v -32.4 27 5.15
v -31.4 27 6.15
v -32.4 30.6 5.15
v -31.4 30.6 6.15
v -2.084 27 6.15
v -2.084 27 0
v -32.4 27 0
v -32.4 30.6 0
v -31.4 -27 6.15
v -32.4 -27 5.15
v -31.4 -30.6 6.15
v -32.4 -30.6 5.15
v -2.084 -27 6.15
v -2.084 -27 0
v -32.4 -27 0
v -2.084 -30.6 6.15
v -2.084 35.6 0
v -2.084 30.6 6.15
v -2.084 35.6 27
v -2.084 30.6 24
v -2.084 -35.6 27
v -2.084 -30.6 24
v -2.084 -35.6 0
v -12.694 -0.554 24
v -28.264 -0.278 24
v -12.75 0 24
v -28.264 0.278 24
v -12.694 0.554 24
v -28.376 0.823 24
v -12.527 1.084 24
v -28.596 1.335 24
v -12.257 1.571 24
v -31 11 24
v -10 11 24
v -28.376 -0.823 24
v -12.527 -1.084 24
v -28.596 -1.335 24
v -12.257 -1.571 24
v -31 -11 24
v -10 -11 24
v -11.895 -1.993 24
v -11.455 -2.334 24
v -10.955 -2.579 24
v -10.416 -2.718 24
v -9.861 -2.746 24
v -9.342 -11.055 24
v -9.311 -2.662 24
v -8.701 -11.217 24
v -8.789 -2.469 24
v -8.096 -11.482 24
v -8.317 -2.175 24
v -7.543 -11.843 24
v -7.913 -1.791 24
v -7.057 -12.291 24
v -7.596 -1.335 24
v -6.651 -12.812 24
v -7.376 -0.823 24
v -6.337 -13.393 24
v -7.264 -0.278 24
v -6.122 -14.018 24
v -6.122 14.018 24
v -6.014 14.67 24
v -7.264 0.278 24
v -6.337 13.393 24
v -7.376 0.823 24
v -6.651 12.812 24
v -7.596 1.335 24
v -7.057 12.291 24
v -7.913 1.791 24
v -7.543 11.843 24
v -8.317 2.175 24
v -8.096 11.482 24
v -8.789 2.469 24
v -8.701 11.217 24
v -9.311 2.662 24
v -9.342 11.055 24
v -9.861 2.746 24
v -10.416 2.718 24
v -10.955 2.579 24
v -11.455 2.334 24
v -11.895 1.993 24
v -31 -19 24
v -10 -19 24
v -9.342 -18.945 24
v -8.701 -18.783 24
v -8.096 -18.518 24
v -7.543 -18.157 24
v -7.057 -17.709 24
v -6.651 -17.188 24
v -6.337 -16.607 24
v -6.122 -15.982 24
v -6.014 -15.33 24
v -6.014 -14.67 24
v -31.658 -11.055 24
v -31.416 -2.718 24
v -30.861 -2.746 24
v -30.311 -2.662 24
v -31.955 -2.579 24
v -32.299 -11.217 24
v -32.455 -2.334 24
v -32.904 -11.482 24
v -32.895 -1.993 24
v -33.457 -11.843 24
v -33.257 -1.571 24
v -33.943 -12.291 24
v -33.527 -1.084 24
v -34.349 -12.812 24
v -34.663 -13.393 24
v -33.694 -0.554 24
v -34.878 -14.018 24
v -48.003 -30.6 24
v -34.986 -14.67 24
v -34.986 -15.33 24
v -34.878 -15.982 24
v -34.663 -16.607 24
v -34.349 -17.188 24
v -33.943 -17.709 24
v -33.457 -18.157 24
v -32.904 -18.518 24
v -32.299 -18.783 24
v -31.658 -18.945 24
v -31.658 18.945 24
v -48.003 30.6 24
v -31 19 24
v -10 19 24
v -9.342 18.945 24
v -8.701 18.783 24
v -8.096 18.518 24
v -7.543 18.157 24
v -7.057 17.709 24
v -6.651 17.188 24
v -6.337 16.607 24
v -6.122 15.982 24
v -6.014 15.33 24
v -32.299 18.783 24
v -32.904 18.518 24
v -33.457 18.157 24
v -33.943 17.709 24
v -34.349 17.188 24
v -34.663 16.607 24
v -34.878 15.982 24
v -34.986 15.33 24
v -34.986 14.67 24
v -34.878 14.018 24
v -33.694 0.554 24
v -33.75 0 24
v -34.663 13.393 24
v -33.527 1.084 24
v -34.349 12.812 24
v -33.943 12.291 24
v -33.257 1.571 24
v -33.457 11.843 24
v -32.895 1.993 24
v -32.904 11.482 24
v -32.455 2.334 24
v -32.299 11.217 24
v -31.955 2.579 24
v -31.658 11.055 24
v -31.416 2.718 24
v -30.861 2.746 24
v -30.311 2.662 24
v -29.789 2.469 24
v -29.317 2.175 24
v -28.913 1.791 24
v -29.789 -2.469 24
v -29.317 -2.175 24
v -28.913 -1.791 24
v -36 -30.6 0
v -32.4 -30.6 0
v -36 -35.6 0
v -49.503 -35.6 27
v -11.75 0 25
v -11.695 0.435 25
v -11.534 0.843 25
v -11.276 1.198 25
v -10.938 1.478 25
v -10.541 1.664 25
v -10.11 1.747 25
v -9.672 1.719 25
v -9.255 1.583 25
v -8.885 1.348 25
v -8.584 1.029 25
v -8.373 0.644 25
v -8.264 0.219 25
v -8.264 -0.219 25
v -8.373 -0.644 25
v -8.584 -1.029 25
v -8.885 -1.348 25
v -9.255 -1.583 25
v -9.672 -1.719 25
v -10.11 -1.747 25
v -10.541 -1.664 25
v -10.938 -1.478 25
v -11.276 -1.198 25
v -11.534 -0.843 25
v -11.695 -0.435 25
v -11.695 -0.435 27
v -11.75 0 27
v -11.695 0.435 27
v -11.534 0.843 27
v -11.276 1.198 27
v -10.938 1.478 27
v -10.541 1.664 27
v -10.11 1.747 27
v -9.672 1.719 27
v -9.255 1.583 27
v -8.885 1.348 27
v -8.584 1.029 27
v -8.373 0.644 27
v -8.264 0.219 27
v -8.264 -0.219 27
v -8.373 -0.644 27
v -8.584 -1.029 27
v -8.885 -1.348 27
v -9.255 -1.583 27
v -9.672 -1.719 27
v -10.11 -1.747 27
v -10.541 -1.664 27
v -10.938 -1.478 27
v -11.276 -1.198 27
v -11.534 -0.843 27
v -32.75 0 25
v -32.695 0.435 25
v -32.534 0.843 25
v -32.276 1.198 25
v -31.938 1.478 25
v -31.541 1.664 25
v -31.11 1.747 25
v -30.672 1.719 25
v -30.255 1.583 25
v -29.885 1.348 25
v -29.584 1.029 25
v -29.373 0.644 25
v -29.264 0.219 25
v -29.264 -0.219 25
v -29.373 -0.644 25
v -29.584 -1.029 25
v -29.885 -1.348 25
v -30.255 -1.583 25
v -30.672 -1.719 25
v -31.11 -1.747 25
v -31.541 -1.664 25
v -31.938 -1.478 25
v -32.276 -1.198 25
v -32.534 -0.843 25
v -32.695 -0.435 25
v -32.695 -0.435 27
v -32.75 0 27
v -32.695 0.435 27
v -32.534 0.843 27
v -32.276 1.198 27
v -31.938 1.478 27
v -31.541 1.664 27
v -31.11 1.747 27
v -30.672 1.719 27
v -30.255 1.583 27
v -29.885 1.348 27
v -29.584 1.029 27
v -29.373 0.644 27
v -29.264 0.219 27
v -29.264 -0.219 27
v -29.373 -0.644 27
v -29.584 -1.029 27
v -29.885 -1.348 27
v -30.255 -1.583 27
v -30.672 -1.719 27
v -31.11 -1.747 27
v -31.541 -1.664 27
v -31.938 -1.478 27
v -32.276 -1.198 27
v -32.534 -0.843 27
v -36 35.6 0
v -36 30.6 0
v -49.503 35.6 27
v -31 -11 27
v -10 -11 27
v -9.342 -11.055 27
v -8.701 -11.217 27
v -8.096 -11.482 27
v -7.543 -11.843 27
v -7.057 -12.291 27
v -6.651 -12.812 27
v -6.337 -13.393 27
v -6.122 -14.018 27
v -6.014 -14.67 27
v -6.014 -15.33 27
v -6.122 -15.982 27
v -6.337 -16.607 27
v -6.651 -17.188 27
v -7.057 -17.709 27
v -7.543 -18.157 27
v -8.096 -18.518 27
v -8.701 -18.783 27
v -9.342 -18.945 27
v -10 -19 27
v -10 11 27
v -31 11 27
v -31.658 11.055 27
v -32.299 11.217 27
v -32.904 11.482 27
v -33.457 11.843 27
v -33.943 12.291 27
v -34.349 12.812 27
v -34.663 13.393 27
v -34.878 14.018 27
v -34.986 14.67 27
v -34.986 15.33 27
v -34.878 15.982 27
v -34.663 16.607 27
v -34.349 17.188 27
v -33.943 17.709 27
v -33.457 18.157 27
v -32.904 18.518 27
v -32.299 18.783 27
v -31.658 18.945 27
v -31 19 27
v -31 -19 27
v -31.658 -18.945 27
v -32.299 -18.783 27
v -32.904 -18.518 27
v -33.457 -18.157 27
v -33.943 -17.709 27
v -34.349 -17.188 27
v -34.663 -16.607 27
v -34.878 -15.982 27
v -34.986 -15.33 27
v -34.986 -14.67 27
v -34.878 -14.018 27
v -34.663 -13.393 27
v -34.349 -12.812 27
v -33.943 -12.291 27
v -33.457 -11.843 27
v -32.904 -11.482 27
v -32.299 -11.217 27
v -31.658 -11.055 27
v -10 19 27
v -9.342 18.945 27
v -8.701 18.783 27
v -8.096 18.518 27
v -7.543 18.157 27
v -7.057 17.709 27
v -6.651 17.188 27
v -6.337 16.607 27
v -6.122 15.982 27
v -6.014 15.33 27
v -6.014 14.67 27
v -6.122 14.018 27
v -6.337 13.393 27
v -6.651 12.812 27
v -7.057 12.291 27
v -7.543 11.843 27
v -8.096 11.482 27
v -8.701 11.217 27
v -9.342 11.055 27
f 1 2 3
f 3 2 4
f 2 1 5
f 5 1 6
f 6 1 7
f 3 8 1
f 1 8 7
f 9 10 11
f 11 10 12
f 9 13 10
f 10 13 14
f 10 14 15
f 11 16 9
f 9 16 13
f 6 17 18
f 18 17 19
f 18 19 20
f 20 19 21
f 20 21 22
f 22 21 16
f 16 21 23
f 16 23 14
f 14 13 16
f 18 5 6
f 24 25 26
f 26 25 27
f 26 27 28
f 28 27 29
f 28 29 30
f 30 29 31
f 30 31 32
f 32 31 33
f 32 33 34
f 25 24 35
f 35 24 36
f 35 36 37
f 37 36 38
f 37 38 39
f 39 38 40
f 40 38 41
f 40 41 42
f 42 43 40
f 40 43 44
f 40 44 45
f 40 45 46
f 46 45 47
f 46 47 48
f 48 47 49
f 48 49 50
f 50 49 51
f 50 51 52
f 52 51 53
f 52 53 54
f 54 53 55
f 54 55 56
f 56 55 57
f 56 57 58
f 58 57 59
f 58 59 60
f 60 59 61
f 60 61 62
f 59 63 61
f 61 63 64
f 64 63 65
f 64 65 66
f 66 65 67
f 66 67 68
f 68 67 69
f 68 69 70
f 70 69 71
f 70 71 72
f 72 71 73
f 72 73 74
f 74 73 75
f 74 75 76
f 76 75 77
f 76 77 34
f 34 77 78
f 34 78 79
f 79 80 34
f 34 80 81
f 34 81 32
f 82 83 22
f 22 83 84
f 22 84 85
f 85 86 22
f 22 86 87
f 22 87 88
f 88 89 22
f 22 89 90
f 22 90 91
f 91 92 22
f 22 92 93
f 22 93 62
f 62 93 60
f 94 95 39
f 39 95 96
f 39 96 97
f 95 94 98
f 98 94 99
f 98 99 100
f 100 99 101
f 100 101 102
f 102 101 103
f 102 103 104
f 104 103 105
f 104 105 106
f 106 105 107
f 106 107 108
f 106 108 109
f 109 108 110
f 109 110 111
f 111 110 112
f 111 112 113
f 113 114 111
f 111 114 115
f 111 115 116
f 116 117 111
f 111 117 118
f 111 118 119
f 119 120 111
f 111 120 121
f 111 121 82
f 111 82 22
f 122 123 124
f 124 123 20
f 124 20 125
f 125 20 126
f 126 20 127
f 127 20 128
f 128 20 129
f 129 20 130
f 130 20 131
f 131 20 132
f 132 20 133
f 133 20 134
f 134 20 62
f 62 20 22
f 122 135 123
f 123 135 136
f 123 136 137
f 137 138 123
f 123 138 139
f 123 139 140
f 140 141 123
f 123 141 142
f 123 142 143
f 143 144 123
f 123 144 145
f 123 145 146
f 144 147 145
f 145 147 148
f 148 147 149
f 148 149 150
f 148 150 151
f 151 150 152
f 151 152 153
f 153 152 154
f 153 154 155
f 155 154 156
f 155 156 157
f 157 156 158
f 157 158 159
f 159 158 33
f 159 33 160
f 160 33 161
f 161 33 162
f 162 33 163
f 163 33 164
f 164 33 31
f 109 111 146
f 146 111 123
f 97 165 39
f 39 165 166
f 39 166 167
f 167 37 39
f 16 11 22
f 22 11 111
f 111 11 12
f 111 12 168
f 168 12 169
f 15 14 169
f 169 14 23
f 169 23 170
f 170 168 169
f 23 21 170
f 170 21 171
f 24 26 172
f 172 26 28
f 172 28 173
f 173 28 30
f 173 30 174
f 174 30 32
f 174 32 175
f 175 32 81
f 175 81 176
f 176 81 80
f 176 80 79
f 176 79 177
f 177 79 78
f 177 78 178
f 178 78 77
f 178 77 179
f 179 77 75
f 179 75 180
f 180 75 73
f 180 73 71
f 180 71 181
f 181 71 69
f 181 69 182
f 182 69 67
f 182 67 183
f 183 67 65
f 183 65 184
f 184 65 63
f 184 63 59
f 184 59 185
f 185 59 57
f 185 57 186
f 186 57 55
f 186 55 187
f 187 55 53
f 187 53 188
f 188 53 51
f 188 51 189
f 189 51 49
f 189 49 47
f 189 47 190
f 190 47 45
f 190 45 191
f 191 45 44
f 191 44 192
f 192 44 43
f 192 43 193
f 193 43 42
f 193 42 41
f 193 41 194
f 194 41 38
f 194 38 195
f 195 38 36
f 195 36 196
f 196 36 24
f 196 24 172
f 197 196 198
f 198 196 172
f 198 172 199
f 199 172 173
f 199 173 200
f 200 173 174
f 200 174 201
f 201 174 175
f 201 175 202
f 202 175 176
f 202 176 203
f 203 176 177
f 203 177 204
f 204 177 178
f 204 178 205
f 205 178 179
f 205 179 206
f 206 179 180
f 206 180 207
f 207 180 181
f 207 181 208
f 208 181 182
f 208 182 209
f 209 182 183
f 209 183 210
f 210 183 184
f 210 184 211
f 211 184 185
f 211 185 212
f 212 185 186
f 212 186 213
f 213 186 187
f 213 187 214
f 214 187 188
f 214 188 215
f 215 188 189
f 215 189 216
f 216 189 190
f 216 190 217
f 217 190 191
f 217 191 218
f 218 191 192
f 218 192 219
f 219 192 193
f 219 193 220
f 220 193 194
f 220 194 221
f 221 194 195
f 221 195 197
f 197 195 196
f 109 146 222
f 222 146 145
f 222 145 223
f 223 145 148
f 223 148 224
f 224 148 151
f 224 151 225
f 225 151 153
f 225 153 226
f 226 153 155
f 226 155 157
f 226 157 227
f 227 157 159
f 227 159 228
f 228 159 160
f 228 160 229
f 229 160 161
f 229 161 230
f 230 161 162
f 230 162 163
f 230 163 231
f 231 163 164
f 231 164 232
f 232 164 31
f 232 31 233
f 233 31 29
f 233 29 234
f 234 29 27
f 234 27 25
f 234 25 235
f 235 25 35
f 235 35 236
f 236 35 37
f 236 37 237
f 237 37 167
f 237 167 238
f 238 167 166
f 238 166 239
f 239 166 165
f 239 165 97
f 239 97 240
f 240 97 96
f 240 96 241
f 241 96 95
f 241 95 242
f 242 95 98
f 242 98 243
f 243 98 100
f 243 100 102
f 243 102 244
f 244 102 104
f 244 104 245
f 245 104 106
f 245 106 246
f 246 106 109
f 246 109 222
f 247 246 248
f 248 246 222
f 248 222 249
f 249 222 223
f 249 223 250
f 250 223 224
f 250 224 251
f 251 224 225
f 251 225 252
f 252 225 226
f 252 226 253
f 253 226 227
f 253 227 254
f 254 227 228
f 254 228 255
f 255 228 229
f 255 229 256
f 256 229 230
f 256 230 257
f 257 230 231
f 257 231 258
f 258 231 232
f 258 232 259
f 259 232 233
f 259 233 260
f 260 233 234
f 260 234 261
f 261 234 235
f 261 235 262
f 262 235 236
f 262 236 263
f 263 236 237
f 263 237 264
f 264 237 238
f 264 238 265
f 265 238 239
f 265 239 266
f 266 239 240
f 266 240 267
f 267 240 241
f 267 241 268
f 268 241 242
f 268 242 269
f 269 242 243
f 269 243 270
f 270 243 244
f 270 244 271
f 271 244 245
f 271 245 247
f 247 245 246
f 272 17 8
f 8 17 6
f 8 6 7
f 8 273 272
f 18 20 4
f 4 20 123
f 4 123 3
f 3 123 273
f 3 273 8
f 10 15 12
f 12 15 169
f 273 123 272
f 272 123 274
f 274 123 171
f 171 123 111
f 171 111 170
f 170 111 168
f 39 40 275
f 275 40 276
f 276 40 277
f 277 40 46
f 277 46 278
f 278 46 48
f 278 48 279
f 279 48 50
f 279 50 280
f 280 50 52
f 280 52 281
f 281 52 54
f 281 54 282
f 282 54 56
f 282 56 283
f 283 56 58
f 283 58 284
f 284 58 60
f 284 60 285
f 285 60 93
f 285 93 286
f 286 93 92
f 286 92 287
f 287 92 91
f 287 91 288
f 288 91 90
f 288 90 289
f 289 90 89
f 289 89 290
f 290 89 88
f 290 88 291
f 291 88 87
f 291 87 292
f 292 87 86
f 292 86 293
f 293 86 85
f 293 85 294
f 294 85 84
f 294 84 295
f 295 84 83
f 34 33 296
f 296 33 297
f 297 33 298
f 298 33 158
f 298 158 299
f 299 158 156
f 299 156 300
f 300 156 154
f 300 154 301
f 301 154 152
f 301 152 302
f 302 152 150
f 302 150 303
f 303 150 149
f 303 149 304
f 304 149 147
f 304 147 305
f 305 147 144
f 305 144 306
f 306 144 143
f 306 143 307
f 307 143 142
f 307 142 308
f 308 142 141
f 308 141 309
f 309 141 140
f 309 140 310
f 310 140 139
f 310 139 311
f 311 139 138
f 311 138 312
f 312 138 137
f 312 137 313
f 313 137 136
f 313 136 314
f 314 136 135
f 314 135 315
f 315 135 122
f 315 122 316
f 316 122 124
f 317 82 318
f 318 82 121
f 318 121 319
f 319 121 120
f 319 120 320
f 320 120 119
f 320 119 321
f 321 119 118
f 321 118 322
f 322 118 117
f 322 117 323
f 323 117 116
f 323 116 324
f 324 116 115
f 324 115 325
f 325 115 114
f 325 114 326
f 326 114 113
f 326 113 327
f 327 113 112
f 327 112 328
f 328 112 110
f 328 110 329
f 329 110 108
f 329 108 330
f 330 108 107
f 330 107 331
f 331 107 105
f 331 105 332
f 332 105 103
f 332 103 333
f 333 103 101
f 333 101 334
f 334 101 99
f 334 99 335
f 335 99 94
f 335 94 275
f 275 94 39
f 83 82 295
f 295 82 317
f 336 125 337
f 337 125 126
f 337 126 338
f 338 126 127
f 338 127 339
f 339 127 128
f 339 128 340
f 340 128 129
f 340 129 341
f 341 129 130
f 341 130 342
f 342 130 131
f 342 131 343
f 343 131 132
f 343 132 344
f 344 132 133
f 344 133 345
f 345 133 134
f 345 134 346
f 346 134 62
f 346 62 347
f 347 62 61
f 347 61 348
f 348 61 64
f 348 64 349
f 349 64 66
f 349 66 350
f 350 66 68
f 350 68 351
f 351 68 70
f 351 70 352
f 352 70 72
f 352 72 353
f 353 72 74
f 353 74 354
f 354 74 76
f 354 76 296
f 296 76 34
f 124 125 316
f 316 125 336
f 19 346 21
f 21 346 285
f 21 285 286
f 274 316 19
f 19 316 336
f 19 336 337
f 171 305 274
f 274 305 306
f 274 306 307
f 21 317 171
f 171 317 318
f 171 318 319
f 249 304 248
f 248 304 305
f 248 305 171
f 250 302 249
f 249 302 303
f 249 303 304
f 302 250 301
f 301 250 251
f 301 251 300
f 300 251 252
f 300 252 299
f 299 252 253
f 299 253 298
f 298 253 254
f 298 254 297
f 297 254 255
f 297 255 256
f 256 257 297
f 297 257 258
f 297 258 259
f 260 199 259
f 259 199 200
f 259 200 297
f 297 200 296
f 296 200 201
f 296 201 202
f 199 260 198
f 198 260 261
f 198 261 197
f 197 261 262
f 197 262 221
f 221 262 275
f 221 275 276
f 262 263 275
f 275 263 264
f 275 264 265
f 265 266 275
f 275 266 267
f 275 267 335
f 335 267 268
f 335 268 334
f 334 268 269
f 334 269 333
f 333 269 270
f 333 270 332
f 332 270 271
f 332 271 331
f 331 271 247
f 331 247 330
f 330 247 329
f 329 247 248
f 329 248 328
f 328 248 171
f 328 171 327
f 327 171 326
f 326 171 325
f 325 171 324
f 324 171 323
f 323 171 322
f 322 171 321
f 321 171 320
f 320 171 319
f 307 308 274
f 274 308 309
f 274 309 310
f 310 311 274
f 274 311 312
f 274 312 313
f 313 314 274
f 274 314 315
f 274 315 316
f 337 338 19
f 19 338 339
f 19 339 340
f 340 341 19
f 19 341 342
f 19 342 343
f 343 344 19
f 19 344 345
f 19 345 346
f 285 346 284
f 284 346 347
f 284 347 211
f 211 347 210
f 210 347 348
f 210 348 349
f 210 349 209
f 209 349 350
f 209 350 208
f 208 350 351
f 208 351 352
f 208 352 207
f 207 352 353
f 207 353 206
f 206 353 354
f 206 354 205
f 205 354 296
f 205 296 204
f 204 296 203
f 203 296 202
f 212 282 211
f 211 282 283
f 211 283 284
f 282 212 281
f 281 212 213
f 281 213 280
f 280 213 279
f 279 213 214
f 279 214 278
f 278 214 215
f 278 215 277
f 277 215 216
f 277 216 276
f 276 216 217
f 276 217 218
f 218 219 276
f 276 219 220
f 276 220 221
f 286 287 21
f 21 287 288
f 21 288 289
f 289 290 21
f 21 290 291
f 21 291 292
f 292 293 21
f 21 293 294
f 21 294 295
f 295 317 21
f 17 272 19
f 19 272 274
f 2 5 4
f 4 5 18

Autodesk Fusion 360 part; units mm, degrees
sketch "Sketch1" plane through (0, 0, 0) normal (0, 0, 1) x (1, 0, 0)
  line L0 (36, 27) -> (-36, 27)
  line L1 (-36, 27) -> (-36, -27)
  line L2 (-36, -27) -> (36, -27)
  line L3 (36, -27) -> (36, 27)
  line L4 (36, 30.6) -> (-36, 30.6)
  line L5 (-36, 35.6) -> (-36, -30.6)
  line L6 (-36, -30.6) -> (36, -30.6)
  line L7 (36, -30.6) -> (36, 30.6)
  line L8 (33, 35.6) -> (-36, 35.6)
  line L9 (41, -27.6) -> (41, 27.6)
  line L10 (33, -35.6) -> (-36, -35.6)
  line L11 (-36, -35.6) -> (-36, 30.6)
  arc A0 (41, 27.6) -> (33, 35.6) centre (33, 27.6) ccw
  arc A1 (33, -35.6) -> (41, -27.6) centre (33, -27.6) ccw
  circle A2 centre (-31, 0) radius 1.75
  line L12 (-31, 11) -> (-10, 11)
  arc A3 (-10, 11) -> (-10, 19) centre (-10, 15) ccw
  line L13 (-10, 19) -> (-31, 19)
  arc A4 (-31, 19) -> (-31, 11) centre (-31, 15) ccw
  line L14 (-31, 15) -> (-10, 15) construction
  line L15 (1.75, 0) -> (22.5, 0)
  line L16 (-31, -11) -> (-10, -11)
  line L17 (-10, -19) -> (-31, -19)
  arc A5 (-10, -19) -> (-10, -11) centre (-10, -15) ccw
  arc A6 (-31, -11) -> (-31, -19) centre (-31, -15) ccw
  circle A7 centre (-10, 0) radius 1.75
  dimension "d1" = 72
  dimension "d2" = 54
  dimension "d3" = 61.2
  dimension "d6" = 8
  dimension "d32" = 3.5
  dimension "d34" = 8
  dimension "d40" = 3.5
extrude "Extrude1" add sketch "Sketch1" along normal blind 6.15 contours L3 L4 L5 L6 L7 L8 L9 L10 L11 A0 A1 | L0 L4 L5 L7 L11 | L2 L5 L6 L7 L11
extrude "Extrude2" add sketch "Sketch1" along normal blind 24 contours L3 L4 L5 L6 L7 L8 L9 L10 L11 A0 A1
extrude "Extrude3" add sketch "Sketch1" along normal blind 27 and the other way blind -24
sketch "Sketch2" plane through (0, -35.6, 0) normal (0, -1, 0) x (1, 0, 0)
  line L0 (-36, 0) -> (33, 0)
  line L1 (33, 0) -> (33, 27)
  line L2 (-36, 27) -> (-36, 0)
  line L3 (-36, 0) -> (-49.5029, 27)
  line L4 (-36, 0) -> (-6, 0) construction
  line L5 (-36, 27) -> (-49.5029, 27)
  line L6 (33, 27) -> (-36, 27)
  line L7 (-36, 27) -> (-36, 24)
  line L8 (-36, 24) -> (-36.4845, 24)
  line L9 (-36.4845, 24) -> (-48.0026, 24)
  line L10 (-36, 0) -> (-36, 6.4)
  line L11 (-36, 6.4) -> (-36, 6)
  line L12 (-36, 6.4) -> (-39.2007, 6.4)
  line L13 (-36, 0) -> (-32.4, 0)
  line L14 (-49.5029, 27) -> (-47.5029, 27)
  line L15 (-36, 6.4) -> (-32.4, 6.4)
  line L16 (-32.4, 6.4) -> (-32.4, 0)
  dimension "d11" = 116.57
  dimension "d25" = 6.4
  dimension "d36" = 3.6
  dimension "d37" = 2
extrude "Extrude4" add sketch "Sketch2" against normal blind 5 contours L2 L3 L10 L11 L12 | L2 L3 L8 L9 L12
extrude "Extrude5" add sketch "Sketch2" along normal blind -71.2 and the other way blind 66.2 contours L2 L3 L10 L11 L12 | L2 L3 L8 L9 L12
extrude "Extrude6" add sketch "Sketch2" against normal blind 71.2 contours L2 L3 L5 L7 L8 L9 L14
extrude "Extrude7" cut sketch "Sketch2" along normal blind -8.6 and the other way blind 5 contours L0 L2 L10 L11 L13 L15 L16
extrude "Extrude8" cut sketch "Sketch2" along normal blind -66.2 and the other way blind 62.6 contours L0 L2 L10 L11 L13 L15 L16
chamfer "Chamfer2" distance 1 angle 45 2 edges at (-32.6316, 0.6328, 24) (-11.6316, 0.6328, 24)
sketch "Sketch3" plane through (0, 0, 27) normal (0, 0, 1) x (-1, 0, 0)
  arc A0 (10, 19) -> (10, 11) centre (10, 15) ccw
  line L0 (10, 19) -> (31, 19)
  arc A1 (31, 11) -> (31, 19) centre (31, 15) ccw
  line L1 (31, 11) -> (10, 11)
  circle A2 centre (31, 0) radius 1.75
  circle A3 centre (10, 0) radius 1.75
  arc A4 (31, -19) -> (31, -11) centre (31, -15) ccw
  line L2 (31, -19) -> (10, -19)
  arc A5 (10, -11) -> (10, -19) centre (10, -15) ccw
  line L3 (10, -11) -> (31, -11)
  line L4 (49.5029, 35.6) -> (-33, 35.6)
  arc A6 (-33, 35.6) -> (-41, 27.6) centre (-33, 27.6) ccw
  line L5 (-41, 27.6) -> (-41, -27.6)
  arc A7 (-41, -27.6) -> (-33, -35.6) centre (-33, -27.6) ccw
  line L6 (-33, -35.6) -> (49.5029, -35.6)
  line L7 (49.5029, -35.6) -> (49.5029, 35.6)
  line L8 (2.0837, -40) -> (-45, -40)
  line L9 (-45, -40) -> (-45, 40)
  line L10 (-45, 40) -> (2.0837, 40)
  line L11 (2.0837, 40) -> (2.0837, -40)
extrude "Extrude9" cut sketch "Sketch3" against normal blind 55 contours L4 A6 L5 A7 L6 L11 | L4 A6 L5 A7 L6 L8 L9 L10 L11
chamfer "Chamfer3" distance 1 angle 45 2 edges at (-32.4, -28.8, 6.15) (-32.4, 28.8, 6.15)
